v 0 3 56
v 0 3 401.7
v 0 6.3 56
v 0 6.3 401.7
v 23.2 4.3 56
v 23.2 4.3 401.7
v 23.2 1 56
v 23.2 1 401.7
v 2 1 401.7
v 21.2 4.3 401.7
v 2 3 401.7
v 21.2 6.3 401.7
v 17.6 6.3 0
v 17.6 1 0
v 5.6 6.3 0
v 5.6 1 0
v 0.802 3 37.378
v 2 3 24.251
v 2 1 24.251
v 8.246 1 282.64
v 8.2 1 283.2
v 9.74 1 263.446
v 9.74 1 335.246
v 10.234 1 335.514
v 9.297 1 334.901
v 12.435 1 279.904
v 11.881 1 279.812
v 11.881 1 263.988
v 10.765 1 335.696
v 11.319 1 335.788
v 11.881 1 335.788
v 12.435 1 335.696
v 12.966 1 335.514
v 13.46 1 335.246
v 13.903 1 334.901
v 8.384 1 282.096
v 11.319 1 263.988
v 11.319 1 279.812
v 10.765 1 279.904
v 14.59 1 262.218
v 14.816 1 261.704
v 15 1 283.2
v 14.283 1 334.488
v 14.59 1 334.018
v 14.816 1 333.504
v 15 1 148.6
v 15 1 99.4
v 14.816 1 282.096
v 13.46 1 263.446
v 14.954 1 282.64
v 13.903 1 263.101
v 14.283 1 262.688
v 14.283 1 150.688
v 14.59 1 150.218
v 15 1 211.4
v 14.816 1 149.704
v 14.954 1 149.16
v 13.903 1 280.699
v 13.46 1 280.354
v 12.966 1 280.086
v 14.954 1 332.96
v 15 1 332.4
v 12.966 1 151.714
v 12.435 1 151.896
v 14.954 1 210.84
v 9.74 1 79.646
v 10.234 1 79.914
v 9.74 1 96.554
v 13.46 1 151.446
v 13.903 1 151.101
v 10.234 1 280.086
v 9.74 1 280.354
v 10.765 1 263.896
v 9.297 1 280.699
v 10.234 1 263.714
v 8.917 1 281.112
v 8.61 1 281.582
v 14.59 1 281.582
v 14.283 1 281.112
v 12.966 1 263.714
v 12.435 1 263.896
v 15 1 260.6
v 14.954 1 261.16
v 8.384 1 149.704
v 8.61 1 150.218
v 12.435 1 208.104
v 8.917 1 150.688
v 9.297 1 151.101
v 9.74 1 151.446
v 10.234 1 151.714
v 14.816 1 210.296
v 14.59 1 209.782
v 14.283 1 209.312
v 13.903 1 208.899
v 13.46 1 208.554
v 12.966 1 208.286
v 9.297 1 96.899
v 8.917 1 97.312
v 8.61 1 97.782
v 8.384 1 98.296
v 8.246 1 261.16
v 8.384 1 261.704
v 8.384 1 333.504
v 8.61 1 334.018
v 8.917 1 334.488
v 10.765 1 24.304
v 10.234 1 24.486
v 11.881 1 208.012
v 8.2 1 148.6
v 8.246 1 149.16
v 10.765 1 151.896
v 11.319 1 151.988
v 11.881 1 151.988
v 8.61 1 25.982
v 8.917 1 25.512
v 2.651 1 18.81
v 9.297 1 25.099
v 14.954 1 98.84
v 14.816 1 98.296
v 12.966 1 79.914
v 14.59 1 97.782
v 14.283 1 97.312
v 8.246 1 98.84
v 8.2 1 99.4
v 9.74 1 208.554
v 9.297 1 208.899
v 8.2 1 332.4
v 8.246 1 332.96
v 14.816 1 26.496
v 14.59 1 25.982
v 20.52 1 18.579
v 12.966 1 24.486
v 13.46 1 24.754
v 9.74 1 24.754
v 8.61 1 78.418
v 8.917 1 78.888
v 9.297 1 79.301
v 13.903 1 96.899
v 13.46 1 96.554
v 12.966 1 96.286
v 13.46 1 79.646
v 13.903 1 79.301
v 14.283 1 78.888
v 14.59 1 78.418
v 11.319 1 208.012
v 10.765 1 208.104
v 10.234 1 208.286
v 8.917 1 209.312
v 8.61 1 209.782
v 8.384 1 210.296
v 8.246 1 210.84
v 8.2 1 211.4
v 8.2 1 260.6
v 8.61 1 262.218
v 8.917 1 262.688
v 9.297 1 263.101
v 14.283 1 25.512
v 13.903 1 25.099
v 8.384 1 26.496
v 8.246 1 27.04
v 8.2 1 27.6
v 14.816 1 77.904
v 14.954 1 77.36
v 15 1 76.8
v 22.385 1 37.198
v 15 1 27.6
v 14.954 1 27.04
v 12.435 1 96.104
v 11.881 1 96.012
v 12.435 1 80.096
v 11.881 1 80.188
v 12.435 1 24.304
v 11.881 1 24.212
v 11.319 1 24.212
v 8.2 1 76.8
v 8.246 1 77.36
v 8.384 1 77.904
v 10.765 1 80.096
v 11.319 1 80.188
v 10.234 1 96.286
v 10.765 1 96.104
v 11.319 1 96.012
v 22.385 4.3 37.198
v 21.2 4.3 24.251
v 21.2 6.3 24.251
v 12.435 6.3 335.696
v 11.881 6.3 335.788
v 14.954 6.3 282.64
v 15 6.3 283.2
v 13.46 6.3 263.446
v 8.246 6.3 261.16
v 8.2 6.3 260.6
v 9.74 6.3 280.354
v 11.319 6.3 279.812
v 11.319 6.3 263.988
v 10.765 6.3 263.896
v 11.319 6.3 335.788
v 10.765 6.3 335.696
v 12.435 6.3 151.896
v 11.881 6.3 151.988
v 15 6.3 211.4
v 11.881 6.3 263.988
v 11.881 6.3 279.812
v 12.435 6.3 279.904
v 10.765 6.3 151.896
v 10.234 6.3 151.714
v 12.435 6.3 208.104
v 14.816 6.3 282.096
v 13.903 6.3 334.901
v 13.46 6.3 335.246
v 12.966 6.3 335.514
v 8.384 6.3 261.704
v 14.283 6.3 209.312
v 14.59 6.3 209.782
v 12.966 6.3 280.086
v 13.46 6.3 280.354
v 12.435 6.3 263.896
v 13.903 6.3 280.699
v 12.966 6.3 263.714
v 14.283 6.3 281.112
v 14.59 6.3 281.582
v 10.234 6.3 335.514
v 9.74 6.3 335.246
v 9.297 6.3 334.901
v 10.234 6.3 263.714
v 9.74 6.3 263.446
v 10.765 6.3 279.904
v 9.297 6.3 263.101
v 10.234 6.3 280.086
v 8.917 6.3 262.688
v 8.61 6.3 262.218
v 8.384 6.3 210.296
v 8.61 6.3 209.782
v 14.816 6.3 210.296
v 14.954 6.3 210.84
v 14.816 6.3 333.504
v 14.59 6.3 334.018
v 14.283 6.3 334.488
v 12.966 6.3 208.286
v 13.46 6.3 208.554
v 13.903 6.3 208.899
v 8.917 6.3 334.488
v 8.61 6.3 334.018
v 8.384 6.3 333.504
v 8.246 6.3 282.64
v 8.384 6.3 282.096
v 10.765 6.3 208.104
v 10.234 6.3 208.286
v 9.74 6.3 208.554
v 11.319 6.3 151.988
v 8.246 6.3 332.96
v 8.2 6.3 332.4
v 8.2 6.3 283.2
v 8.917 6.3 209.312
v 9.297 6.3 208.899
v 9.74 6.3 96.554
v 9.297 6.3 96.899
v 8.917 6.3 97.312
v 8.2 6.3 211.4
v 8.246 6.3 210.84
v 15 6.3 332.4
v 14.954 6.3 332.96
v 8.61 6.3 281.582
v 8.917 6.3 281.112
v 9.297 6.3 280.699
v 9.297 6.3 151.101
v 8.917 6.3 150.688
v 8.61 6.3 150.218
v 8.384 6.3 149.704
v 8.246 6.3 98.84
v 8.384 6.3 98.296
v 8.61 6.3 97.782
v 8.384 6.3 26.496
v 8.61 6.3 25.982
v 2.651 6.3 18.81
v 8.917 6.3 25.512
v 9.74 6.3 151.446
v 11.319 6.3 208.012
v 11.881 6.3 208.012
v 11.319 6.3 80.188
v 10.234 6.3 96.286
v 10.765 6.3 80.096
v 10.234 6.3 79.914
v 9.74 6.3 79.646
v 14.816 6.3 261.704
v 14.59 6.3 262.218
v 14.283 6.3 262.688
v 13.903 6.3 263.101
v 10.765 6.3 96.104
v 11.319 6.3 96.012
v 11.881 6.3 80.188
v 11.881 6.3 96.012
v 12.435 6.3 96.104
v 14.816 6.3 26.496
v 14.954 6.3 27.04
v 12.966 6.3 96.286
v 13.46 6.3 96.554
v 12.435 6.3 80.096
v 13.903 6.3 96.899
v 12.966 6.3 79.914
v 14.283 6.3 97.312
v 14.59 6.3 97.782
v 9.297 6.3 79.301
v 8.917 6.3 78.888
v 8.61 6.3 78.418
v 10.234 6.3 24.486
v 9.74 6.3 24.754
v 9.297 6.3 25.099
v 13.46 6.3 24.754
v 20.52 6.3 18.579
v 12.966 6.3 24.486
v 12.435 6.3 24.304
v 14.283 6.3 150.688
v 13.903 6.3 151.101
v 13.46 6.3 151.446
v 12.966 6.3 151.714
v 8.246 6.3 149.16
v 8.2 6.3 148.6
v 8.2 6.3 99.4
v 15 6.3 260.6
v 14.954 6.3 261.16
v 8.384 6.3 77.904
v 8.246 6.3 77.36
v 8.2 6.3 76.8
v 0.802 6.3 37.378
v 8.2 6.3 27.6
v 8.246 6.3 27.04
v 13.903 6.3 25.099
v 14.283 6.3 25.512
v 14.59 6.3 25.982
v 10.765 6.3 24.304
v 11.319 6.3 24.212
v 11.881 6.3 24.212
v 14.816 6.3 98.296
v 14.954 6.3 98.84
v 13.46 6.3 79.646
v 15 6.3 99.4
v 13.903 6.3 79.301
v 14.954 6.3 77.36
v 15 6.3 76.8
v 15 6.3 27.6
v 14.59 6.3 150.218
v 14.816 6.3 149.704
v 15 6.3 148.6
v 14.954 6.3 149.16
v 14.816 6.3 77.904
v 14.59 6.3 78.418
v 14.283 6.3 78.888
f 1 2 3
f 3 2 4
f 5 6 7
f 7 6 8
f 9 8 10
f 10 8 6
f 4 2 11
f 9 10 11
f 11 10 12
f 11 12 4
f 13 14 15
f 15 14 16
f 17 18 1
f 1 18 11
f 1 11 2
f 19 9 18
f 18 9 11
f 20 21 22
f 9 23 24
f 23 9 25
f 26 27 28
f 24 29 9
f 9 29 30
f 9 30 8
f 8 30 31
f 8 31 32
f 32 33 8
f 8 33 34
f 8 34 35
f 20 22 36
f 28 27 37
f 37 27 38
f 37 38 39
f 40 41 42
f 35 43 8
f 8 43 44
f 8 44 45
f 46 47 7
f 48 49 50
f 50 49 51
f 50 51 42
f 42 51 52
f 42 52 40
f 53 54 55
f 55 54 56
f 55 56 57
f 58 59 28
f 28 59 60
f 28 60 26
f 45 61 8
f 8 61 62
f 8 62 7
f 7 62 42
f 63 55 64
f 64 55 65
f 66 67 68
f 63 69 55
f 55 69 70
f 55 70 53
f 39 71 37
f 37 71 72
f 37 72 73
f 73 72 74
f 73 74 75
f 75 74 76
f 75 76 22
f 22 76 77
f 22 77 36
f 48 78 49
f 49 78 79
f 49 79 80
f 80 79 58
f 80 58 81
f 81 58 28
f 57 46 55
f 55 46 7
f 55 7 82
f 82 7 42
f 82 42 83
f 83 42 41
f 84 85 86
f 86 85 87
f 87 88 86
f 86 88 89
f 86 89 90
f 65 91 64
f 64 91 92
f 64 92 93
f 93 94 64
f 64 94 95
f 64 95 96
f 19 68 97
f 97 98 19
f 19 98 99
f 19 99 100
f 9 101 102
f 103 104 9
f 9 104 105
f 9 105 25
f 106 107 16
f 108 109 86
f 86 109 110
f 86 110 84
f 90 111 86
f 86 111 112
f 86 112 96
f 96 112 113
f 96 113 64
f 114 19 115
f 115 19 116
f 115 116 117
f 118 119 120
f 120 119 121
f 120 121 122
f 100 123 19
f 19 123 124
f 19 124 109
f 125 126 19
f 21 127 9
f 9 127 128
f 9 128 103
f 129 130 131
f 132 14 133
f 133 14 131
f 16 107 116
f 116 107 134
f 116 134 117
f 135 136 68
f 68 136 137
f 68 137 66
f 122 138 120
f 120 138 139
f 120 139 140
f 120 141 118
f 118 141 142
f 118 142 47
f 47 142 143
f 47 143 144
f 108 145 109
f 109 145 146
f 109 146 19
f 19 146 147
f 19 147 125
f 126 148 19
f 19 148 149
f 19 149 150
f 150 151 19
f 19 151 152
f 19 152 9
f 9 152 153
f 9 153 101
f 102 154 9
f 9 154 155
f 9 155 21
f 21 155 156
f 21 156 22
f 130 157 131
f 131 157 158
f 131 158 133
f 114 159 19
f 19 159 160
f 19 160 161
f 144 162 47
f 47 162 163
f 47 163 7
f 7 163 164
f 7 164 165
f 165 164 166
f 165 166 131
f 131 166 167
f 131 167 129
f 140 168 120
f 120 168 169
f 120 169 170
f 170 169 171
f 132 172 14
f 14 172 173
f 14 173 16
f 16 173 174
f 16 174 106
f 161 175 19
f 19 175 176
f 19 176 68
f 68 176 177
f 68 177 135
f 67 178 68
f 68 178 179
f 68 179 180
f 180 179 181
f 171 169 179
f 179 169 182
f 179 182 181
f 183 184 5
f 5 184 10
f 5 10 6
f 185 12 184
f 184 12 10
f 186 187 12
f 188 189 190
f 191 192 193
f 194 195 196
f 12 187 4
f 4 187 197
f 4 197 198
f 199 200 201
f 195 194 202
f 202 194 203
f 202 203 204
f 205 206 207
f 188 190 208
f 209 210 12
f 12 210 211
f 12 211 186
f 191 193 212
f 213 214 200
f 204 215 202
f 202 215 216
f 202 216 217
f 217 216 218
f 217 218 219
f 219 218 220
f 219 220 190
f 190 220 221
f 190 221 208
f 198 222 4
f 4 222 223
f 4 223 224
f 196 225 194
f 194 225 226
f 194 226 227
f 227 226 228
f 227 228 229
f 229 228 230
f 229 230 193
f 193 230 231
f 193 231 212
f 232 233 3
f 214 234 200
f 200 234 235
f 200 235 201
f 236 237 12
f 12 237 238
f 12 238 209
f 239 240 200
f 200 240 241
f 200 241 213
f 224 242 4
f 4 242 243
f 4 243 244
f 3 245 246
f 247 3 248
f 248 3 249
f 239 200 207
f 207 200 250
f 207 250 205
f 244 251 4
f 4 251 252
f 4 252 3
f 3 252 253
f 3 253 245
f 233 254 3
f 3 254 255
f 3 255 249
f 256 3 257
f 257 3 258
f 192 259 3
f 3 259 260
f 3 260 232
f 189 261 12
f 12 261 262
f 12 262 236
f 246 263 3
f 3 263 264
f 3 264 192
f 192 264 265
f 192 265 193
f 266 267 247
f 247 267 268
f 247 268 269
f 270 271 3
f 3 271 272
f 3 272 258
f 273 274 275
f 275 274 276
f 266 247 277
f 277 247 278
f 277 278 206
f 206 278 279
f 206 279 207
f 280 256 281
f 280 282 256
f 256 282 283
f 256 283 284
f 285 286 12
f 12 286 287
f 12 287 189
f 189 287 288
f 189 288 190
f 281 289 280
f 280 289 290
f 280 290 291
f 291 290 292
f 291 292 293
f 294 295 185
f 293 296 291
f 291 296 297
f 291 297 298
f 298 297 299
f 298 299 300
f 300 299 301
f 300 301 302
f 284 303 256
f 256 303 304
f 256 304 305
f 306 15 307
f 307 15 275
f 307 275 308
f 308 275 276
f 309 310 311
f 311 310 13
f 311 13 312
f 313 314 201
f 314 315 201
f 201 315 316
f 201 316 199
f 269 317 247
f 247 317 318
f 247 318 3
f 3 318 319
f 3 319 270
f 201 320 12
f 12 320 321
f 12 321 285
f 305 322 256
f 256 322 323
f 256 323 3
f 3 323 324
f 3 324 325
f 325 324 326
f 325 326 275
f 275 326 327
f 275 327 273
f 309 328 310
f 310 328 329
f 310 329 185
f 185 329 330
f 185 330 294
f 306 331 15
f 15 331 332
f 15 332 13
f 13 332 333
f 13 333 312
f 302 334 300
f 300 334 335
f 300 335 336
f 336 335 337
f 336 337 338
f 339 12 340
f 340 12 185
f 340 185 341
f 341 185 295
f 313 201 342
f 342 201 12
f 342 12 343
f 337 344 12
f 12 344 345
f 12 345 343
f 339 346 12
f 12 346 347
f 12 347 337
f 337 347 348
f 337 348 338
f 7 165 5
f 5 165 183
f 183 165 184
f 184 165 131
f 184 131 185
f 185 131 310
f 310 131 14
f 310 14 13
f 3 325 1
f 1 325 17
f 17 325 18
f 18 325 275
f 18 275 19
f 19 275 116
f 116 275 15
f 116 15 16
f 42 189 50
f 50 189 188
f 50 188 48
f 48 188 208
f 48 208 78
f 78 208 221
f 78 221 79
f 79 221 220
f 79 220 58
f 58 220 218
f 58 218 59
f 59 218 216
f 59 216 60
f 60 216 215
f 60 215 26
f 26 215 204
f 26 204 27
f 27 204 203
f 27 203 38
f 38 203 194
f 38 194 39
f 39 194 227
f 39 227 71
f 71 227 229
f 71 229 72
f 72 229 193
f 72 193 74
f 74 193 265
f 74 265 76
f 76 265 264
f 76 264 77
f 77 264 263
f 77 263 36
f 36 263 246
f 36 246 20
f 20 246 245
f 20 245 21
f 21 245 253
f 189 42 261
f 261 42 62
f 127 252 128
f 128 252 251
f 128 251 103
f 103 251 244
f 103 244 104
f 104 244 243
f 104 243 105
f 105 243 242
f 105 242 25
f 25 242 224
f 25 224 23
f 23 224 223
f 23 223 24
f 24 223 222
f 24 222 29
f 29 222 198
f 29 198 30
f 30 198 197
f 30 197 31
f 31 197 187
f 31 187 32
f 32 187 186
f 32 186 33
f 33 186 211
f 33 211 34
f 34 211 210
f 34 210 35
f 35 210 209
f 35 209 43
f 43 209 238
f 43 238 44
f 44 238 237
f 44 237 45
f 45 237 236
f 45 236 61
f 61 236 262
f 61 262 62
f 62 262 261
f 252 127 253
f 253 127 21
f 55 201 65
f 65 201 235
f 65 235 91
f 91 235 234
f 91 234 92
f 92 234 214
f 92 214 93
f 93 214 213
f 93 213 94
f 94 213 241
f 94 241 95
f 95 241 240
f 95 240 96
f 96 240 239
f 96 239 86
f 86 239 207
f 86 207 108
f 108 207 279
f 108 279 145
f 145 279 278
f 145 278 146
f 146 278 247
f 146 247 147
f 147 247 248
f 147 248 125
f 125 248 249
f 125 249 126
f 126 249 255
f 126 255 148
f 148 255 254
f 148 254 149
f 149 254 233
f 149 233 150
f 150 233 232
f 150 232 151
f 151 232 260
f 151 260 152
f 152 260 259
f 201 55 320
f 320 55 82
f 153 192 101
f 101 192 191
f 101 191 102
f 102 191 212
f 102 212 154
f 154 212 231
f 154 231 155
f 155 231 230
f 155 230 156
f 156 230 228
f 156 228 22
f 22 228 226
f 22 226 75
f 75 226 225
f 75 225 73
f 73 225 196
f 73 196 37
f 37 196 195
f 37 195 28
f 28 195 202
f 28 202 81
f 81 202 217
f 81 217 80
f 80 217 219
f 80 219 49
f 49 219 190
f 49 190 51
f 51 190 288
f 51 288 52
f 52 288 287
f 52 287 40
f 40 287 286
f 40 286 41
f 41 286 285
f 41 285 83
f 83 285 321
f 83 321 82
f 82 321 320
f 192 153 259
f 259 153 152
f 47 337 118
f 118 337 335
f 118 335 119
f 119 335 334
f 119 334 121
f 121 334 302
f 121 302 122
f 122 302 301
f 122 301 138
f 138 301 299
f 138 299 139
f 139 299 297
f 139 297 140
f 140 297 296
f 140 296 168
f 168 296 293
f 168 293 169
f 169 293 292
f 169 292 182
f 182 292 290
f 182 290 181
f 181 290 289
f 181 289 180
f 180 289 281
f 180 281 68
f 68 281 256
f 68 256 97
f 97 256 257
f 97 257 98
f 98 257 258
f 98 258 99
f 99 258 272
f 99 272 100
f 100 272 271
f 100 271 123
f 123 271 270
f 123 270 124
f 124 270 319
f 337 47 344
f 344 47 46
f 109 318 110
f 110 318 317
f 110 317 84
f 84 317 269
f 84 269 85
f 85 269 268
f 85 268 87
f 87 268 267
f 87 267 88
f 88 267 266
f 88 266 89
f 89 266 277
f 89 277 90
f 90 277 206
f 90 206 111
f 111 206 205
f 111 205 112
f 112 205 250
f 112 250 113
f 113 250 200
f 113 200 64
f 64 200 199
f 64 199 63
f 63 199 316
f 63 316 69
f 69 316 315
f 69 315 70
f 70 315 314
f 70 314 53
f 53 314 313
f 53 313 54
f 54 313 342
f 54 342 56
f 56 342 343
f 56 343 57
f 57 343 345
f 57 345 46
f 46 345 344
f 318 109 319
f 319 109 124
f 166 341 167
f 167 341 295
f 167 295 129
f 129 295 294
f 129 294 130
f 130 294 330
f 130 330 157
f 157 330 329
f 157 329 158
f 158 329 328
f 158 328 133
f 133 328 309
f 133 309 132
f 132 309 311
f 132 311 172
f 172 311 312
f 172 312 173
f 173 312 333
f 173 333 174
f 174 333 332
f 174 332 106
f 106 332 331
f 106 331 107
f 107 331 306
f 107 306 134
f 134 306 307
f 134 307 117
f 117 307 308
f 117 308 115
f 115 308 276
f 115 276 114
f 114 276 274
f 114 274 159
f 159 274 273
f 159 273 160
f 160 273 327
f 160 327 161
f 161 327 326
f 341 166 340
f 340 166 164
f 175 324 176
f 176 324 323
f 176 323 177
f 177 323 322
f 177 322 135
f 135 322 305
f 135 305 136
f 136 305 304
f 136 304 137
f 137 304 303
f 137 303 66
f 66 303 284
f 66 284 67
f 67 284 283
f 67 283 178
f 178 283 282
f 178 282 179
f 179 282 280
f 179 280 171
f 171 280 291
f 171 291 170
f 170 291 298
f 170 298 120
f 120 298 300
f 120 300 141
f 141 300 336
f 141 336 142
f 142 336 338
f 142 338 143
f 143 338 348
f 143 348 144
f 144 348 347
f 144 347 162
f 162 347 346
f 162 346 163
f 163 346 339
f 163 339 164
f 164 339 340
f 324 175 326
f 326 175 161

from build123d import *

# Parameters (mm, degrees)
IZIM1_W                     = 23.2
IZIM1_H                     = 7.3
Y_KSEKLIK_EKSTR_ZYON1_DEPTH = 401.7
KES_EKSTR_ZYON1_DEPTH       = 402.7
KES_EKSTR_ZYON2_DEPTH       = 402.7
KES_EKSTR_ZYON3_DEPTH       = 402.7


with BuildPart() as part:
    # Çizim1 → Yükseklik-Ekstrüzyon1 (new body)
    with BuildSketch(Plane.XY):
        with Locations((11.6, 3.65)):
            Rectangle(IZIM1_W, IZIM1_H)
    extrude(amount=Y_KSEKLIK_EKSTR_ZYON1_DEPTH)

    # Çizim2 → Kes-Ekstrüzyon1 (cut)
    with BuildSketch(Plane.XY.offset(401.7)):
        Polygon((21.2, 7.3), (23.2, 7.3), (23.2, 4.3), (21.2, 4.3), (21.2, 6.3), (0, 6.3), (0, 7.3), align=None)
        Polygon((0, 0), (2, 0), (23.2, 0), (23.2, 1), (2, 1), (2, 3), (0, 3), align=None)
    extrude(amount=-KES_EKSTR_ZYON1_DEPTH, mode=Mode.SUBTRACT)

    # Çizim3 → Kes-Ekstrüzyon2 (cut)
    with BuildSketch(Plane(origin=(0, 6.3, 0), x_dir=(1, 0, 0), z_dir=(0, 1, 0))):
        with BuildLine():
            Line((0, 0), (5.6, 0))
            add(Edge.make_bspline(
                [(5.6, 0), (0.42062512, -27.8813272), (0, -56)],
                knots=[0, 0, 0, 0.849776743, 0.849776743, 0.849776743], degree=2))
            Line((0, -56), (0, 0))
        make_face()
        with BuildLine():
            Line((23.2, 0), (23.2, -56))
            add(Edge.make_bspline(
                [(17.6, 0), (22.77937488, -27.8813272), (23.2, -56)],
                knots=[0, 0, 0, 0.849776743, 0.849776743, 0.849776743], degree=2))
            Line((17.6, 0), (23.2, 0))
        make_face()
    extrude(amount=-KES_EKSTR_ZYON2_DEPTH, mode=Mode.SUBTRACT)

    # Çizim4 → Kes-Ekstrüzyon3 (cut)
    with BuildSketch(Plane(origin=(0, 6.3, 0), x_dir=(1, 0, 0), z_dir=(0, 1, 0))):
        with BuildLine():
            Line((8.2, -27.6), (8.2, -76.8))
            ThreePointArc((8.2, -76.8), (11.6, -80.2), (15, -76.8))
            Line((15, -76.8), (15, -27.6))
            ThreePointArc((15, -27.6), (11.6, -24.2), (8.2, -27.6))
        make_face()
        with BuildLine():
            Line((8.2, -99.4), (8.2, -148.6))
            ThreePointArc((8.2, -148.6), (11.6, -152), (15, -148.6))
            Line((15, -148.6), (15, -99.4))
            ThreePointArc((15, -99.4), (11.6, -96), (8.2, -99.4))
        make_face()
        with BuildLine():
            Line((8.2, -211.4), (8.2, -260.6))
            ThreePointArc((8.2, -260.6), (11.6, -264), (15, -260.6))
            Line((15, -260.6), (15, -211.4))
            ThreePointArc((15, -211.4), (11.6, -208), (8.2, -211.4))
        make_face()
        with BuildLine():
            Line((8.2, -283.2), (8.2, -332.4))
            ThreePointArc((8.2, -332.4), (11.6, -335.8), (15, -332.4))
            Line((15, -332.4), (15, -283.2))
            ThreePointArc((15, -283.2), (11.6, -279.8), (8.2, -283.2))
        make_face()
    extrude(amount=-KES_EKSTR_ZYON3_DEPTH, mode=Mode.SUBTRACT)


solid = part.part
